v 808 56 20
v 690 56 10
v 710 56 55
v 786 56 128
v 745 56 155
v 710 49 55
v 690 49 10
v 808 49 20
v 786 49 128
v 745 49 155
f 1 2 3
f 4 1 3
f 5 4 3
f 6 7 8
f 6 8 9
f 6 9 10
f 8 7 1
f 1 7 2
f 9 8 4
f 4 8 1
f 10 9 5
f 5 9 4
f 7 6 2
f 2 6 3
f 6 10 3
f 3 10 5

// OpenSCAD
polyhedron(points=[[690.0, 56.0, 10.0], [808.0, 56.0, 20.0], [786.0, 56.0, 128.0], [745.0, 56.0, 155.0], [710.0, 56.0, 55.0], [690.0, 49.0, 10.0], [808.0, 49.0, 20.0], [786.0, 49.0, 128.0], [745.0, 49.0, 155.0], [710.0, 49.0, 55.0]], faces=[[1, 0, 4], [2, 1, 4], [3, 2, 4], [9, 5, 6], [9, 6, 7], [9, 7, 8], [6, 5, 1], [1, 5, 0], [7, 6, 2], [2, 6, 1], [8, 7, 3], [3, 7, 2], [5, 9, 0], [0, 9, 4], [9, 8, 4], [4, 8, 3]], convexity=30);
